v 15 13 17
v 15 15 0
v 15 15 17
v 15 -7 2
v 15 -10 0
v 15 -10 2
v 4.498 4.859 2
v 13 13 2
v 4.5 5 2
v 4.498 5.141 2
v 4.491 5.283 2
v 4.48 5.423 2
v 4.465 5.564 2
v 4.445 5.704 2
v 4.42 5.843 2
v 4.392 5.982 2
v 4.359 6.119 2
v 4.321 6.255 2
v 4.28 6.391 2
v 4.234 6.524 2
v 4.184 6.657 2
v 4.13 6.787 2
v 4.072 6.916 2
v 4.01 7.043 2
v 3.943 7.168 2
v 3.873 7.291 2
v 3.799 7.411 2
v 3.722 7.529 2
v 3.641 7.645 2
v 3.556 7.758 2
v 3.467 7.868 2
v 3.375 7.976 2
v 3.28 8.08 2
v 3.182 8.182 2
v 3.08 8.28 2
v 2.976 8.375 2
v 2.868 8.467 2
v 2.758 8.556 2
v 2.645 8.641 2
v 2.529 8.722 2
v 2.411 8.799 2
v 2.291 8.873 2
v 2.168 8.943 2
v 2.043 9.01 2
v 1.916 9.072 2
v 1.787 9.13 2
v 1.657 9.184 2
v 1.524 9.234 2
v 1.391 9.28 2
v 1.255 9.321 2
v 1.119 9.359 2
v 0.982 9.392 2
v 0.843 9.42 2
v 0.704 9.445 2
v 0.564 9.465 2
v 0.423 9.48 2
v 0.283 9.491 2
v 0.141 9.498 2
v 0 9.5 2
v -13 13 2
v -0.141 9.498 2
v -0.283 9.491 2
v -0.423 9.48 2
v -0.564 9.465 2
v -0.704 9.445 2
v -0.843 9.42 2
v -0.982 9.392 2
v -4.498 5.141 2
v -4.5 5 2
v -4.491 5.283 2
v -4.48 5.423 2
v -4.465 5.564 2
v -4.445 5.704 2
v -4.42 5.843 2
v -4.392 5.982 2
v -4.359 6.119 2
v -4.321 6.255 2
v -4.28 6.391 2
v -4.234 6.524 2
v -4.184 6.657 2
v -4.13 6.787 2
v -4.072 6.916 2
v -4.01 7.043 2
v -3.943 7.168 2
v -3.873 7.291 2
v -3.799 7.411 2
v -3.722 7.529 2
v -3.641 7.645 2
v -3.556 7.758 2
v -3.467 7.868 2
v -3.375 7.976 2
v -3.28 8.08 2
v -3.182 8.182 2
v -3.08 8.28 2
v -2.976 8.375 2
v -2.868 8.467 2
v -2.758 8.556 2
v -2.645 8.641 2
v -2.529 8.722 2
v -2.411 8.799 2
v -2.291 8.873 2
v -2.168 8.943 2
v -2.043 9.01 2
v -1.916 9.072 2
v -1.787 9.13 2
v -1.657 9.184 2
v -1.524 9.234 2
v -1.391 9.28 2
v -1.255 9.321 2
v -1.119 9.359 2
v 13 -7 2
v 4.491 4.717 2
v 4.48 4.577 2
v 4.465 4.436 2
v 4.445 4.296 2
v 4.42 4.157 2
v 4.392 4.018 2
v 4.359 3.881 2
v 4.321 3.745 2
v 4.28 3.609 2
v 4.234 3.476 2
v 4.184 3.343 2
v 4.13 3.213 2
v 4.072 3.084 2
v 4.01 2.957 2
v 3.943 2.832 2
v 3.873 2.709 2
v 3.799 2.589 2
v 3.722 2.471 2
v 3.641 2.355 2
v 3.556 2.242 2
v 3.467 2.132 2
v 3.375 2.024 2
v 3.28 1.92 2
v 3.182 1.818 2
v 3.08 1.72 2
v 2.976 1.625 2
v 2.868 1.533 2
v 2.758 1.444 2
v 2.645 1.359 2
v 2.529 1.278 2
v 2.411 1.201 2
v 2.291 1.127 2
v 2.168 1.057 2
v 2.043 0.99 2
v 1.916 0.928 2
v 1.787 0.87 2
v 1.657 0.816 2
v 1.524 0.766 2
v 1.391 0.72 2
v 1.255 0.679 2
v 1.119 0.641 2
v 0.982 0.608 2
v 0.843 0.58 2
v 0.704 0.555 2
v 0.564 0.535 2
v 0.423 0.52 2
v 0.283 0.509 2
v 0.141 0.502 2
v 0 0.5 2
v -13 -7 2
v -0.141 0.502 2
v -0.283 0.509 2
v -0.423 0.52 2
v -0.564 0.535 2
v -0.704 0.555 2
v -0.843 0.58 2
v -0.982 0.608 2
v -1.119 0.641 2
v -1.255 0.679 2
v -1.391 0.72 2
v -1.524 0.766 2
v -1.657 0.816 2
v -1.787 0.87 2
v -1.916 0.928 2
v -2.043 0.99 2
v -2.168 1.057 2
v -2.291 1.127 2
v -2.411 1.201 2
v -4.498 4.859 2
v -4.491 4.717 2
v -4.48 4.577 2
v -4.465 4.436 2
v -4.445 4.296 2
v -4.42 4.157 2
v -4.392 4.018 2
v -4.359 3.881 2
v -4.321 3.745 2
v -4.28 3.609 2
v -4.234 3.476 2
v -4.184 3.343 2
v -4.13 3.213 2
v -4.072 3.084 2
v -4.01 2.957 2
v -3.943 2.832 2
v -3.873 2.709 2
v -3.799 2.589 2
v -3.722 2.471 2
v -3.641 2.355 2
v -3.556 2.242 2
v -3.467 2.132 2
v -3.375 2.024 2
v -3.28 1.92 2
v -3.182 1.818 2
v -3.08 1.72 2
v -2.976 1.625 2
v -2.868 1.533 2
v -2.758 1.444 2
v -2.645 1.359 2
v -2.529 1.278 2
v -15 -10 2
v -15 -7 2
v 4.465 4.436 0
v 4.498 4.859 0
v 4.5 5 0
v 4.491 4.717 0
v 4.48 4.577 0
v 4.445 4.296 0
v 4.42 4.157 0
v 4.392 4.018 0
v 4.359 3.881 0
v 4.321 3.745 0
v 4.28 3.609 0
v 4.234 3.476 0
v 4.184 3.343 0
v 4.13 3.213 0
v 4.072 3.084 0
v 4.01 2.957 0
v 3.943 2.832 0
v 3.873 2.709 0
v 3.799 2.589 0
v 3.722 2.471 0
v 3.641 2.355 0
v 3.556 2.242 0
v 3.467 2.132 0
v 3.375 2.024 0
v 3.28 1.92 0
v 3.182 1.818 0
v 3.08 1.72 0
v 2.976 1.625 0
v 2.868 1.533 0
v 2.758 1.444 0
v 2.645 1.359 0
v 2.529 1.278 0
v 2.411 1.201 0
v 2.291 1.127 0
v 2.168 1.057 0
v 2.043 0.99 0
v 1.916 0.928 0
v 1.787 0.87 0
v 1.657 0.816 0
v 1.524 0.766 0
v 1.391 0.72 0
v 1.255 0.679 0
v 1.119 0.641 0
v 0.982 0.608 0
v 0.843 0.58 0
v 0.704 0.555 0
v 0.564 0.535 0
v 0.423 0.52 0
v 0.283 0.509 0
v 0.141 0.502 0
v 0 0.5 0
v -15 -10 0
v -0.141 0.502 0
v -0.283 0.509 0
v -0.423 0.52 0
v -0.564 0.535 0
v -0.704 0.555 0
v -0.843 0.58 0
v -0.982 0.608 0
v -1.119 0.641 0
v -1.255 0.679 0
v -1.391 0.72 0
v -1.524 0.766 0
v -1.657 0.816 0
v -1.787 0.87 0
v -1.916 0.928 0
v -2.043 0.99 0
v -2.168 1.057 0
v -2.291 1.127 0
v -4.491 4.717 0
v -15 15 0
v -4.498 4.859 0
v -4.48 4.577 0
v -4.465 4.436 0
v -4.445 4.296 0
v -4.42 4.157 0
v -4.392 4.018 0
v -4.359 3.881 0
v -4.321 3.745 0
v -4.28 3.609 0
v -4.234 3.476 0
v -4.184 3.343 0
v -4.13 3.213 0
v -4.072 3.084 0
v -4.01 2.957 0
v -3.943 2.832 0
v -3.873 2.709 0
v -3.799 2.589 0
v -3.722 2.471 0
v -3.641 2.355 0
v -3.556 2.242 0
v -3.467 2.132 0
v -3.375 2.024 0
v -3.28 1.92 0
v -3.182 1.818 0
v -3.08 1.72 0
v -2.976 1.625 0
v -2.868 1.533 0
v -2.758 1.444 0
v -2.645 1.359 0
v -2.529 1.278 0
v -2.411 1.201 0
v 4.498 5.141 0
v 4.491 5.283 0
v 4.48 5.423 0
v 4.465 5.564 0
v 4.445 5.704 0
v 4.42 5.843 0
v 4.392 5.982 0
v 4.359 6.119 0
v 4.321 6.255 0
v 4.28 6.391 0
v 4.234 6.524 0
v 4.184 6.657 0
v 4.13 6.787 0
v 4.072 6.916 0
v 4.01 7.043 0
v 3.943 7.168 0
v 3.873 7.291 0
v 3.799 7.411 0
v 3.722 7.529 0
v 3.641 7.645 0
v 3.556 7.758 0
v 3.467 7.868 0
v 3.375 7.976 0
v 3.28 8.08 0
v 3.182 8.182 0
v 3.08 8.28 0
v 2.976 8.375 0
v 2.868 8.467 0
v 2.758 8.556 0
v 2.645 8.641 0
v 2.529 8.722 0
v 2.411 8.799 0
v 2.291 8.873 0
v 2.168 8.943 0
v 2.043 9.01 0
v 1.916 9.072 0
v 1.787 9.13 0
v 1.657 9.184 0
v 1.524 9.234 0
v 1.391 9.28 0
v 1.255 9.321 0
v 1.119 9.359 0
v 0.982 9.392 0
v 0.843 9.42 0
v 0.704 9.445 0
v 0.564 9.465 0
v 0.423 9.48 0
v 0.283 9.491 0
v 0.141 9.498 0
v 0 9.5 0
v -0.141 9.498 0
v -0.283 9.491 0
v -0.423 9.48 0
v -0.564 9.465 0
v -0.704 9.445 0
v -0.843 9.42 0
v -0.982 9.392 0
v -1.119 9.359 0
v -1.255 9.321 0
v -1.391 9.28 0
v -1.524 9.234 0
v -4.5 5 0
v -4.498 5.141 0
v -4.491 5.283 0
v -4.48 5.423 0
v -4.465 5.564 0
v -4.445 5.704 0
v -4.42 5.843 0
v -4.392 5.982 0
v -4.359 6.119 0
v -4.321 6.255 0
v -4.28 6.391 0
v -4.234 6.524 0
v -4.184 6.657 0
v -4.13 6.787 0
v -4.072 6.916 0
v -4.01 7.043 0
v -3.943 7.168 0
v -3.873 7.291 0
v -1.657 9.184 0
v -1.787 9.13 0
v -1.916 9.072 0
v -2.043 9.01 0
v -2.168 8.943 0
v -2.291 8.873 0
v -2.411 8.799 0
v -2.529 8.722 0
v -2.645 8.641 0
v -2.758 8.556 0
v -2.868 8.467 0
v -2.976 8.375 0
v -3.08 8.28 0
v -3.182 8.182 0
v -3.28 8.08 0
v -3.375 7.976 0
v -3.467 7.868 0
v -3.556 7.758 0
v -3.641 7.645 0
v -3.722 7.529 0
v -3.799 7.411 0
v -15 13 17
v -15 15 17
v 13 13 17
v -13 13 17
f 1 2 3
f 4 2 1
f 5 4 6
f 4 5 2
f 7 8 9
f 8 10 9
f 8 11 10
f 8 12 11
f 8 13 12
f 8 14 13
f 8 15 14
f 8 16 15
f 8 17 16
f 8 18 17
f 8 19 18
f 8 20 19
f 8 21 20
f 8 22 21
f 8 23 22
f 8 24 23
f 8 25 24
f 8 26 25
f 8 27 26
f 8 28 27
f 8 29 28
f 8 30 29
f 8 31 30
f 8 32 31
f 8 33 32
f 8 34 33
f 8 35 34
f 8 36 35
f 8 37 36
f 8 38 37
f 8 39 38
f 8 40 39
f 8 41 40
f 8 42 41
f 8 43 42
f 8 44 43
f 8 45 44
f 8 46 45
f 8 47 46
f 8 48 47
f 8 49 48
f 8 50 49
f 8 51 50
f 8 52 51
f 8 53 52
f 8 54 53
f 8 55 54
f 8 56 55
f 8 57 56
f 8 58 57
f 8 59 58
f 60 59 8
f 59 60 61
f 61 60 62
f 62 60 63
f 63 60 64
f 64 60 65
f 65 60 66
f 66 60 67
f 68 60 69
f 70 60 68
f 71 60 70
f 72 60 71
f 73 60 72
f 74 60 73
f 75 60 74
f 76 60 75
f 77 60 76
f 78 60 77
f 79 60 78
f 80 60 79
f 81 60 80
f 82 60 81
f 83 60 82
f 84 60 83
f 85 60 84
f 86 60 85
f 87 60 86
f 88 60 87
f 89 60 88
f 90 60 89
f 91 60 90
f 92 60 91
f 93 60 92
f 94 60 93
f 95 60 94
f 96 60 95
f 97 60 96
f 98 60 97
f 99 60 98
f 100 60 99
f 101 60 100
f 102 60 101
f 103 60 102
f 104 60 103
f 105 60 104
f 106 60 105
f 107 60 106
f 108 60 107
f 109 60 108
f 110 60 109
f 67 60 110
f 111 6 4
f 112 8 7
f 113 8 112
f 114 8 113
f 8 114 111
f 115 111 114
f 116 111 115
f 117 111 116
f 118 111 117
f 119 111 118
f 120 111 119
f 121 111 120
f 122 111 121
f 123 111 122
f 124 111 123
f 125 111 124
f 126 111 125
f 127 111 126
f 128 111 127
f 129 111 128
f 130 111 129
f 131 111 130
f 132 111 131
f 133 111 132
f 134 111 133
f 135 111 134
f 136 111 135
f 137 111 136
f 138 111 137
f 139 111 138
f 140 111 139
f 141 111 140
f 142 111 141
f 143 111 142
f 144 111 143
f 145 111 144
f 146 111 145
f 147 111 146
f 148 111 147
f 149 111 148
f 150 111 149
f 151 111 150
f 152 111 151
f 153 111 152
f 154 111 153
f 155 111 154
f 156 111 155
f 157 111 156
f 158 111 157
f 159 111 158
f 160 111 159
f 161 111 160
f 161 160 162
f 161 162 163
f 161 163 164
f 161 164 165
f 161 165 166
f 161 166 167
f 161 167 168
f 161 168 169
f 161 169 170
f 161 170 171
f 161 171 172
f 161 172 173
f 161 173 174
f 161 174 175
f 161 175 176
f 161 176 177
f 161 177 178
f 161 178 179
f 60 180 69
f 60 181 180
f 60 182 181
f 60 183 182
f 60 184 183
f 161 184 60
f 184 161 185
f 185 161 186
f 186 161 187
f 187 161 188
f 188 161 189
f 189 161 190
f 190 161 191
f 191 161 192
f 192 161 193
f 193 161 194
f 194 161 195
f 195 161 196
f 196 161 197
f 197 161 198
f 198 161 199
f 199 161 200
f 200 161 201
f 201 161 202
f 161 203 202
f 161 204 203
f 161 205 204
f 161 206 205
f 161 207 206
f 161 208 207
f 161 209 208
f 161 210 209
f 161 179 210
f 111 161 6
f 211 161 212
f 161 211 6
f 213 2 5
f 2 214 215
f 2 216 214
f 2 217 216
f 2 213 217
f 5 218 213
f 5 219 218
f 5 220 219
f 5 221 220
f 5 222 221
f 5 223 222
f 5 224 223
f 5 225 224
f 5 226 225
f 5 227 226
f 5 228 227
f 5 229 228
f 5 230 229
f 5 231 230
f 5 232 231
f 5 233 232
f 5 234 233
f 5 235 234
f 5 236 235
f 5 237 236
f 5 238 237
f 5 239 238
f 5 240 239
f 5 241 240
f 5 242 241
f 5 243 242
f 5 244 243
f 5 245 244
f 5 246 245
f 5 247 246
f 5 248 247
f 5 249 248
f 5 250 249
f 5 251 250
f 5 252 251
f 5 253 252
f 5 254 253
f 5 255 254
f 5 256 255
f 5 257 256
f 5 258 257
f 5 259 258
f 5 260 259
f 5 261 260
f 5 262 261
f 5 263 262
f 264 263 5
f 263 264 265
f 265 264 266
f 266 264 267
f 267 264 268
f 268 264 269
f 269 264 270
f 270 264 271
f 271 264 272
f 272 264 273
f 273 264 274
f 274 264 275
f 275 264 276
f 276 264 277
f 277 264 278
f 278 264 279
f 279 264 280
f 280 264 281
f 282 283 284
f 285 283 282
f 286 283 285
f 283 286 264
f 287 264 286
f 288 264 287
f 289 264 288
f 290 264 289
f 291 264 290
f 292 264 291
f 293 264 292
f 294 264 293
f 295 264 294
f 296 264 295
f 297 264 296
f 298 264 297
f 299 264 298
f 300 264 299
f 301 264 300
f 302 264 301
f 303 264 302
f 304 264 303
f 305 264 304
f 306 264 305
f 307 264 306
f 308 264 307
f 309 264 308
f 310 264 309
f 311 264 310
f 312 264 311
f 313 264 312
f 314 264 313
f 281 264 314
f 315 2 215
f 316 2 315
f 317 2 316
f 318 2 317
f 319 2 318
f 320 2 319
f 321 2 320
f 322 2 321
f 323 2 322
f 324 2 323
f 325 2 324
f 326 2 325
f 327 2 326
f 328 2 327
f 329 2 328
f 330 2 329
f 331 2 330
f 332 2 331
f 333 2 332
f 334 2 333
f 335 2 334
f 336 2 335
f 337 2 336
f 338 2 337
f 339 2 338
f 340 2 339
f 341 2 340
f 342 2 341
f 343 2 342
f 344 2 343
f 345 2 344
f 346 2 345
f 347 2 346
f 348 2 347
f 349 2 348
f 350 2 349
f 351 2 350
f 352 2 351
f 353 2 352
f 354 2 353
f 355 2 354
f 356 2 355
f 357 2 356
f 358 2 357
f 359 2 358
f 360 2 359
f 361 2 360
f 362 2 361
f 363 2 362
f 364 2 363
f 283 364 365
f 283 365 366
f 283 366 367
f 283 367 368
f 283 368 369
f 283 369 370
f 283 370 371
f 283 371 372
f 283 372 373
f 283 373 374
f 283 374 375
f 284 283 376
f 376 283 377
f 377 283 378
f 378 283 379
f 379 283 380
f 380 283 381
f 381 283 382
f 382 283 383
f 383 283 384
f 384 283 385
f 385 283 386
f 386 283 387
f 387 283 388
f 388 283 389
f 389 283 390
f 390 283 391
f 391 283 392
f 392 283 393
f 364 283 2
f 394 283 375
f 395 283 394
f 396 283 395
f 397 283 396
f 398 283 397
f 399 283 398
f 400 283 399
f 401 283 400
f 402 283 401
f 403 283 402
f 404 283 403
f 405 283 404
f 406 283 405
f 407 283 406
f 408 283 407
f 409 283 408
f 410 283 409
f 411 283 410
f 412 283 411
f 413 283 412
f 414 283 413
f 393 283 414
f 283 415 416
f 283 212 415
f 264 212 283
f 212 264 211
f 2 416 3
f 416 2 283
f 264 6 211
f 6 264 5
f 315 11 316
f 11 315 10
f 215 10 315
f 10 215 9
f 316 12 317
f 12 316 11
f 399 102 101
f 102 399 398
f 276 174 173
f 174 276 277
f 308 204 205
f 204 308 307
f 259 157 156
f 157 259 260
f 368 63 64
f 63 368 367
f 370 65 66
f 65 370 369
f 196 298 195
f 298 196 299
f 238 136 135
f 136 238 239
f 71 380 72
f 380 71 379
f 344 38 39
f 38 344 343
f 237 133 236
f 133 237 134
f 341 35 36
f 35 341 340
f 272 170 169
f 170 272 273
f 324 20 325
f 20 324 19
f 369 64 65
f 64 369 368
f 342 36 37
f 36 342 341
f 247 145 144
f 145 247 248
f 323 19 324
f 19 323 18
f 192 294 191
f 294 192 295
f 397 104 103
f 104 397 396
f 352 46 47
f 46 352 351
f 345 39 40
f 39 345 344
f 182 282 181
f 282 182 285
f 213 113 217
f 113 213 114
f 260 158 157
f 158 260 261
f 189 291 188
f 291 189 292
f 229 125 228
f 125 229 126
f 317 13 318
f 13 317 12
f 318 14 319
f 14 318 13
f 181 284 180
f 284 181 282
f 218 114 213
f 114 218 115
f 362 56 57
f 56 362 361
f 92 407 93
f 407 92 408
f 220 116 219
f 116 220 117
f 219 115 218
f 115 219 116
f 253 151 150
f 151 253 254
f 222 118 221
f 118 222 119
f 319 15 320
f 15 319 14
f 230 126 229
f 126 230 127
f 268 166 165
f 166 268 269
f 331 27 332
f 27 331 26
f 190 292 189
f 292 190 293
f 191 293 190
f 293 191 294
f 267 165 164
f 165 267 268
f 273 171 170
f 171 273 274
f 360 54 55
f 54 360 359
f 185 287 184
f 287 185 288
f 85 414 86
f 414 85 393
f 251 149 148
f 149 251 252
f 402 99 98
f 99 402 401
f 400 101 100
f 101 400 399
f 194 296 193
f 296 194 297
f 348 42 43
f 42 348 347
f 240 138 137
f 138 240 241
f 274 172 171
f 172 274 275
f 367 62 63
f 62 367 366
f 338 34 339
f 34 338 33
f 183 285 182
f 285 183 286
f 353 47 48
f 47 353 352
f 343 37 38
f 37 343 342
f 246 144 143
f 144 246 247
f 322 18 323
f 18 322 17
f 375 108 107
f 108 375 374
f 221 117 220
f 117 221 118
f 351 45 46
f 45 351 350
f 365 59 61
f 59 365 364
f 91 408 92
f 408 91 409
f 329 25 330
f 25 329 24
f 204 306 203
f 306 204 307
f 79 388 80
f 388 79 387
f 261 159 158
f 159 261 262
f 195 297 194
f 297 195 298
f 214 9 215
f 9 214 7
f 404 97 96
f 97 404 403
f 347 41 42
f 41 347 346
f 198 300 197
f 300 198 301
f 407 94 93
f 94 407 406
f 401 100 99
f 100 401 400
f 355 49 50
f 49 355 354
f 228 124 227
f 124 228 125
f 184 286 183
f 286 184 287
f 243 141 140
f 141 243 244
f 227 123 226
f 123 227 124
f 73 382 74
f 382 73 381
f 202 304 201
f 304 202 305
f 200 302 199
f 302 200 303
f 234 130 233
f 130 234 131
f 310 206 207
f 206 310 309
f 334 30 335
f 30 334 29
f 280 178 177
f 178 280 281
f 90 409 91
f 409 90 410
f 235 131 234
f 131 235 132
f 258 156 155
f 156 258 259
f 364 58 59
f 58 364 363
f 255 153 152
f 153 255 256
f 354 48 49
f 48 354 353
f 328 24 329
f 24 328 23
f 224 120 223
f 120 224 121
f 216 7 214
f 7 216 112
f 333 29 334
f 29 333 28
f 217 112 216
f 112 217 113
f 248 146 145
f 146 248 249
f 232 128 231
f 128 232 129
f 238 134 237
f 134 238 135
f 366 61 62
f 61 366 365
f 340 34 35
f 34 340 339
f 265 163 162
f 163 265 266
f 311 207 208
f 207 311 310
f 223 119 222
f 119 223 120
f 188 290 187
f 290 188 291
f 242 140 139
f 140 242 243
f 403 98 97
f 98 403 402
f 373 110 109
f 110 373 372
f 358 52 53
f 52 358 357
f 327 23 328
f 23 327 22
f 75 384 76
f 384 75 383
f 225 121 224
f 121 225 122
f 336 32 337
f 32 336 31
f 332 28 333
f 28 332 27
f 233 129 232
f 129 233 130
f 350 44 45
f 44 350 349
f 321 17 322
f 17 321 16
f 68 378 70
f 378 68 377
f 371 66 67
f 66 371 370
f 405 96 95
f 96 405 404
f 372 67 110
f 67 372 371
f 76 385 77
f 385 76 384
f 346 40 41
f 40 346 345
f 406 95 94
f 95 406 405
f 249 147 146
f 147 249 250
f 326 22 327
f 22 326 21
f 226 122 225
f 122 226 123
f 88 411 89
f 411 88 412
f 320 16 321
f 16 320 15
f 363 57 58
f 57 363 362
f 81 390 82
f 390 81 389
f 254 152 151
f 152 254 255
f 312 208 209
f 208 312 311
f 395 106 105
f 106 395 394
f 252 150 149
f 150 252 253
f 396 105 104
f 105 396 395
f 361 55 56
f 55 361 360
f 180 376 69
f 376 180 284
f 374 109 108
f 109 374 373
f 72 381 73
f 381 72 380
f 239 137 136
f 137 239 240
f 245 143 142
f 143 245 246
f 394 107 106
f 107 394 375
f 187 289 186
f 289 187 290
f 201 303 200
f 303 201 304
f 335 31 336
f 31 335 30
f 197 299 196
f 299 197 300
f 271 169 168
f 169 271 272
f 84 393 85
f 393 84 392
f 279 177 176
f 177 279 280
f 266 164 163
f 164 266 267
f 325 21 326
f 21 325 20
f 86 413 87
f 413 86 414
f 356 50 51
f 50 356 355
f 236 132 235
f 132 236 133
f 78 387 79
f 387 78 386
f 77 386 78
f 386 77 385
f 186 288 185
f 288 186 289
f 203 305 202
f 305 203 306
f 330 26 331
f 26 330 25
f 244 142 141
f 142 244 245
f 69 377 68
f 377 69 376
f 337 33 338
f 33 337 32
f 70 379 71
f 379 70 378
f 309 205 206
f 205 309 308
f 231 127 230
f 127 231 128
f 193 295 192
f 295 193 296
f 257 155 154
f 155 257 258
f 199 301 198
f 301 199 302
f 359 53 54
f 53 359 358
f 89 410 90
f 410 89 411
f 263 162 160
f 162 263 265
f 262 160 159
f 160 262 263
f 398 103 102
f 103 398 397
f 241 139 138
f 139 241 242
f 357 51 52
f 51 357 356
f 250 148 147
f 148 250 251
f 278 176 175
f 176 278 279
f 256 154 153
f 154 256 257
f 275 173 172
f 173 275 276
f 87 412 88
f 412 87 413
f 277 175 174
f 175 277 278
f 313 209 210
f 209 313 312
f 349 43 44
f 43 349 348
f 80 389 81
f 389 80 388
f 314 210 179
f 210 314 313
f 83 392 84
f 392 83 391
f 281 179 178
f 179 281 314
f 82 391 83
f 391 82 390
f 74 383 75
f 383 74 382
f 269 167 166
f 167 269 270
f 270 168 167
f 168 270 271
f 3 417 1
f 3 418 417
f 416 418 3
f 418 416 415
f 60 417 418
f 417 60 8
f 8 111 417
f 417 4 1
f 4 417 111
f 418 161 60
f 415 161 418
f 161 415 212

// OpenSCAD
// Solar Shade for the PIR sensor
// We want to protect the PIR sensor from 10am to 2pm - Local solar time
// At 10am the sun should be 30 degrees from vertical
// So, our solar shade should be atan(30/40) or 37 degrees - good enough


difference() {
    translate([-15,-10,0]) cube([30,25,2]);                                     // This is the backplane of the sun visor
    color ("Black") translate([0,5,0]) cylinder(h=2,r=4.5, $fn=200);             // This is the hole in the center
};
translate([-15,13,2]) color("Blue") cube([30,2,15]);                         // This is the top of the visor

module prism(l, w, h){
       polyhedron(
               points=[[0,0,0], [l,0,0], [l,w,0], [0,w,0], [0,w,h], [l,w,h]],
               faces=[[0,1,2,3],[5,4,3,2],[0,4,5,1],[0,3,4],[5,2,1]]
               );

       }
   
 color("Red") translate([13,-7,2]) prism(2, 20, 15);

 color ("Green") translate([-15,-7,2]) prism(2, 20, 15);
